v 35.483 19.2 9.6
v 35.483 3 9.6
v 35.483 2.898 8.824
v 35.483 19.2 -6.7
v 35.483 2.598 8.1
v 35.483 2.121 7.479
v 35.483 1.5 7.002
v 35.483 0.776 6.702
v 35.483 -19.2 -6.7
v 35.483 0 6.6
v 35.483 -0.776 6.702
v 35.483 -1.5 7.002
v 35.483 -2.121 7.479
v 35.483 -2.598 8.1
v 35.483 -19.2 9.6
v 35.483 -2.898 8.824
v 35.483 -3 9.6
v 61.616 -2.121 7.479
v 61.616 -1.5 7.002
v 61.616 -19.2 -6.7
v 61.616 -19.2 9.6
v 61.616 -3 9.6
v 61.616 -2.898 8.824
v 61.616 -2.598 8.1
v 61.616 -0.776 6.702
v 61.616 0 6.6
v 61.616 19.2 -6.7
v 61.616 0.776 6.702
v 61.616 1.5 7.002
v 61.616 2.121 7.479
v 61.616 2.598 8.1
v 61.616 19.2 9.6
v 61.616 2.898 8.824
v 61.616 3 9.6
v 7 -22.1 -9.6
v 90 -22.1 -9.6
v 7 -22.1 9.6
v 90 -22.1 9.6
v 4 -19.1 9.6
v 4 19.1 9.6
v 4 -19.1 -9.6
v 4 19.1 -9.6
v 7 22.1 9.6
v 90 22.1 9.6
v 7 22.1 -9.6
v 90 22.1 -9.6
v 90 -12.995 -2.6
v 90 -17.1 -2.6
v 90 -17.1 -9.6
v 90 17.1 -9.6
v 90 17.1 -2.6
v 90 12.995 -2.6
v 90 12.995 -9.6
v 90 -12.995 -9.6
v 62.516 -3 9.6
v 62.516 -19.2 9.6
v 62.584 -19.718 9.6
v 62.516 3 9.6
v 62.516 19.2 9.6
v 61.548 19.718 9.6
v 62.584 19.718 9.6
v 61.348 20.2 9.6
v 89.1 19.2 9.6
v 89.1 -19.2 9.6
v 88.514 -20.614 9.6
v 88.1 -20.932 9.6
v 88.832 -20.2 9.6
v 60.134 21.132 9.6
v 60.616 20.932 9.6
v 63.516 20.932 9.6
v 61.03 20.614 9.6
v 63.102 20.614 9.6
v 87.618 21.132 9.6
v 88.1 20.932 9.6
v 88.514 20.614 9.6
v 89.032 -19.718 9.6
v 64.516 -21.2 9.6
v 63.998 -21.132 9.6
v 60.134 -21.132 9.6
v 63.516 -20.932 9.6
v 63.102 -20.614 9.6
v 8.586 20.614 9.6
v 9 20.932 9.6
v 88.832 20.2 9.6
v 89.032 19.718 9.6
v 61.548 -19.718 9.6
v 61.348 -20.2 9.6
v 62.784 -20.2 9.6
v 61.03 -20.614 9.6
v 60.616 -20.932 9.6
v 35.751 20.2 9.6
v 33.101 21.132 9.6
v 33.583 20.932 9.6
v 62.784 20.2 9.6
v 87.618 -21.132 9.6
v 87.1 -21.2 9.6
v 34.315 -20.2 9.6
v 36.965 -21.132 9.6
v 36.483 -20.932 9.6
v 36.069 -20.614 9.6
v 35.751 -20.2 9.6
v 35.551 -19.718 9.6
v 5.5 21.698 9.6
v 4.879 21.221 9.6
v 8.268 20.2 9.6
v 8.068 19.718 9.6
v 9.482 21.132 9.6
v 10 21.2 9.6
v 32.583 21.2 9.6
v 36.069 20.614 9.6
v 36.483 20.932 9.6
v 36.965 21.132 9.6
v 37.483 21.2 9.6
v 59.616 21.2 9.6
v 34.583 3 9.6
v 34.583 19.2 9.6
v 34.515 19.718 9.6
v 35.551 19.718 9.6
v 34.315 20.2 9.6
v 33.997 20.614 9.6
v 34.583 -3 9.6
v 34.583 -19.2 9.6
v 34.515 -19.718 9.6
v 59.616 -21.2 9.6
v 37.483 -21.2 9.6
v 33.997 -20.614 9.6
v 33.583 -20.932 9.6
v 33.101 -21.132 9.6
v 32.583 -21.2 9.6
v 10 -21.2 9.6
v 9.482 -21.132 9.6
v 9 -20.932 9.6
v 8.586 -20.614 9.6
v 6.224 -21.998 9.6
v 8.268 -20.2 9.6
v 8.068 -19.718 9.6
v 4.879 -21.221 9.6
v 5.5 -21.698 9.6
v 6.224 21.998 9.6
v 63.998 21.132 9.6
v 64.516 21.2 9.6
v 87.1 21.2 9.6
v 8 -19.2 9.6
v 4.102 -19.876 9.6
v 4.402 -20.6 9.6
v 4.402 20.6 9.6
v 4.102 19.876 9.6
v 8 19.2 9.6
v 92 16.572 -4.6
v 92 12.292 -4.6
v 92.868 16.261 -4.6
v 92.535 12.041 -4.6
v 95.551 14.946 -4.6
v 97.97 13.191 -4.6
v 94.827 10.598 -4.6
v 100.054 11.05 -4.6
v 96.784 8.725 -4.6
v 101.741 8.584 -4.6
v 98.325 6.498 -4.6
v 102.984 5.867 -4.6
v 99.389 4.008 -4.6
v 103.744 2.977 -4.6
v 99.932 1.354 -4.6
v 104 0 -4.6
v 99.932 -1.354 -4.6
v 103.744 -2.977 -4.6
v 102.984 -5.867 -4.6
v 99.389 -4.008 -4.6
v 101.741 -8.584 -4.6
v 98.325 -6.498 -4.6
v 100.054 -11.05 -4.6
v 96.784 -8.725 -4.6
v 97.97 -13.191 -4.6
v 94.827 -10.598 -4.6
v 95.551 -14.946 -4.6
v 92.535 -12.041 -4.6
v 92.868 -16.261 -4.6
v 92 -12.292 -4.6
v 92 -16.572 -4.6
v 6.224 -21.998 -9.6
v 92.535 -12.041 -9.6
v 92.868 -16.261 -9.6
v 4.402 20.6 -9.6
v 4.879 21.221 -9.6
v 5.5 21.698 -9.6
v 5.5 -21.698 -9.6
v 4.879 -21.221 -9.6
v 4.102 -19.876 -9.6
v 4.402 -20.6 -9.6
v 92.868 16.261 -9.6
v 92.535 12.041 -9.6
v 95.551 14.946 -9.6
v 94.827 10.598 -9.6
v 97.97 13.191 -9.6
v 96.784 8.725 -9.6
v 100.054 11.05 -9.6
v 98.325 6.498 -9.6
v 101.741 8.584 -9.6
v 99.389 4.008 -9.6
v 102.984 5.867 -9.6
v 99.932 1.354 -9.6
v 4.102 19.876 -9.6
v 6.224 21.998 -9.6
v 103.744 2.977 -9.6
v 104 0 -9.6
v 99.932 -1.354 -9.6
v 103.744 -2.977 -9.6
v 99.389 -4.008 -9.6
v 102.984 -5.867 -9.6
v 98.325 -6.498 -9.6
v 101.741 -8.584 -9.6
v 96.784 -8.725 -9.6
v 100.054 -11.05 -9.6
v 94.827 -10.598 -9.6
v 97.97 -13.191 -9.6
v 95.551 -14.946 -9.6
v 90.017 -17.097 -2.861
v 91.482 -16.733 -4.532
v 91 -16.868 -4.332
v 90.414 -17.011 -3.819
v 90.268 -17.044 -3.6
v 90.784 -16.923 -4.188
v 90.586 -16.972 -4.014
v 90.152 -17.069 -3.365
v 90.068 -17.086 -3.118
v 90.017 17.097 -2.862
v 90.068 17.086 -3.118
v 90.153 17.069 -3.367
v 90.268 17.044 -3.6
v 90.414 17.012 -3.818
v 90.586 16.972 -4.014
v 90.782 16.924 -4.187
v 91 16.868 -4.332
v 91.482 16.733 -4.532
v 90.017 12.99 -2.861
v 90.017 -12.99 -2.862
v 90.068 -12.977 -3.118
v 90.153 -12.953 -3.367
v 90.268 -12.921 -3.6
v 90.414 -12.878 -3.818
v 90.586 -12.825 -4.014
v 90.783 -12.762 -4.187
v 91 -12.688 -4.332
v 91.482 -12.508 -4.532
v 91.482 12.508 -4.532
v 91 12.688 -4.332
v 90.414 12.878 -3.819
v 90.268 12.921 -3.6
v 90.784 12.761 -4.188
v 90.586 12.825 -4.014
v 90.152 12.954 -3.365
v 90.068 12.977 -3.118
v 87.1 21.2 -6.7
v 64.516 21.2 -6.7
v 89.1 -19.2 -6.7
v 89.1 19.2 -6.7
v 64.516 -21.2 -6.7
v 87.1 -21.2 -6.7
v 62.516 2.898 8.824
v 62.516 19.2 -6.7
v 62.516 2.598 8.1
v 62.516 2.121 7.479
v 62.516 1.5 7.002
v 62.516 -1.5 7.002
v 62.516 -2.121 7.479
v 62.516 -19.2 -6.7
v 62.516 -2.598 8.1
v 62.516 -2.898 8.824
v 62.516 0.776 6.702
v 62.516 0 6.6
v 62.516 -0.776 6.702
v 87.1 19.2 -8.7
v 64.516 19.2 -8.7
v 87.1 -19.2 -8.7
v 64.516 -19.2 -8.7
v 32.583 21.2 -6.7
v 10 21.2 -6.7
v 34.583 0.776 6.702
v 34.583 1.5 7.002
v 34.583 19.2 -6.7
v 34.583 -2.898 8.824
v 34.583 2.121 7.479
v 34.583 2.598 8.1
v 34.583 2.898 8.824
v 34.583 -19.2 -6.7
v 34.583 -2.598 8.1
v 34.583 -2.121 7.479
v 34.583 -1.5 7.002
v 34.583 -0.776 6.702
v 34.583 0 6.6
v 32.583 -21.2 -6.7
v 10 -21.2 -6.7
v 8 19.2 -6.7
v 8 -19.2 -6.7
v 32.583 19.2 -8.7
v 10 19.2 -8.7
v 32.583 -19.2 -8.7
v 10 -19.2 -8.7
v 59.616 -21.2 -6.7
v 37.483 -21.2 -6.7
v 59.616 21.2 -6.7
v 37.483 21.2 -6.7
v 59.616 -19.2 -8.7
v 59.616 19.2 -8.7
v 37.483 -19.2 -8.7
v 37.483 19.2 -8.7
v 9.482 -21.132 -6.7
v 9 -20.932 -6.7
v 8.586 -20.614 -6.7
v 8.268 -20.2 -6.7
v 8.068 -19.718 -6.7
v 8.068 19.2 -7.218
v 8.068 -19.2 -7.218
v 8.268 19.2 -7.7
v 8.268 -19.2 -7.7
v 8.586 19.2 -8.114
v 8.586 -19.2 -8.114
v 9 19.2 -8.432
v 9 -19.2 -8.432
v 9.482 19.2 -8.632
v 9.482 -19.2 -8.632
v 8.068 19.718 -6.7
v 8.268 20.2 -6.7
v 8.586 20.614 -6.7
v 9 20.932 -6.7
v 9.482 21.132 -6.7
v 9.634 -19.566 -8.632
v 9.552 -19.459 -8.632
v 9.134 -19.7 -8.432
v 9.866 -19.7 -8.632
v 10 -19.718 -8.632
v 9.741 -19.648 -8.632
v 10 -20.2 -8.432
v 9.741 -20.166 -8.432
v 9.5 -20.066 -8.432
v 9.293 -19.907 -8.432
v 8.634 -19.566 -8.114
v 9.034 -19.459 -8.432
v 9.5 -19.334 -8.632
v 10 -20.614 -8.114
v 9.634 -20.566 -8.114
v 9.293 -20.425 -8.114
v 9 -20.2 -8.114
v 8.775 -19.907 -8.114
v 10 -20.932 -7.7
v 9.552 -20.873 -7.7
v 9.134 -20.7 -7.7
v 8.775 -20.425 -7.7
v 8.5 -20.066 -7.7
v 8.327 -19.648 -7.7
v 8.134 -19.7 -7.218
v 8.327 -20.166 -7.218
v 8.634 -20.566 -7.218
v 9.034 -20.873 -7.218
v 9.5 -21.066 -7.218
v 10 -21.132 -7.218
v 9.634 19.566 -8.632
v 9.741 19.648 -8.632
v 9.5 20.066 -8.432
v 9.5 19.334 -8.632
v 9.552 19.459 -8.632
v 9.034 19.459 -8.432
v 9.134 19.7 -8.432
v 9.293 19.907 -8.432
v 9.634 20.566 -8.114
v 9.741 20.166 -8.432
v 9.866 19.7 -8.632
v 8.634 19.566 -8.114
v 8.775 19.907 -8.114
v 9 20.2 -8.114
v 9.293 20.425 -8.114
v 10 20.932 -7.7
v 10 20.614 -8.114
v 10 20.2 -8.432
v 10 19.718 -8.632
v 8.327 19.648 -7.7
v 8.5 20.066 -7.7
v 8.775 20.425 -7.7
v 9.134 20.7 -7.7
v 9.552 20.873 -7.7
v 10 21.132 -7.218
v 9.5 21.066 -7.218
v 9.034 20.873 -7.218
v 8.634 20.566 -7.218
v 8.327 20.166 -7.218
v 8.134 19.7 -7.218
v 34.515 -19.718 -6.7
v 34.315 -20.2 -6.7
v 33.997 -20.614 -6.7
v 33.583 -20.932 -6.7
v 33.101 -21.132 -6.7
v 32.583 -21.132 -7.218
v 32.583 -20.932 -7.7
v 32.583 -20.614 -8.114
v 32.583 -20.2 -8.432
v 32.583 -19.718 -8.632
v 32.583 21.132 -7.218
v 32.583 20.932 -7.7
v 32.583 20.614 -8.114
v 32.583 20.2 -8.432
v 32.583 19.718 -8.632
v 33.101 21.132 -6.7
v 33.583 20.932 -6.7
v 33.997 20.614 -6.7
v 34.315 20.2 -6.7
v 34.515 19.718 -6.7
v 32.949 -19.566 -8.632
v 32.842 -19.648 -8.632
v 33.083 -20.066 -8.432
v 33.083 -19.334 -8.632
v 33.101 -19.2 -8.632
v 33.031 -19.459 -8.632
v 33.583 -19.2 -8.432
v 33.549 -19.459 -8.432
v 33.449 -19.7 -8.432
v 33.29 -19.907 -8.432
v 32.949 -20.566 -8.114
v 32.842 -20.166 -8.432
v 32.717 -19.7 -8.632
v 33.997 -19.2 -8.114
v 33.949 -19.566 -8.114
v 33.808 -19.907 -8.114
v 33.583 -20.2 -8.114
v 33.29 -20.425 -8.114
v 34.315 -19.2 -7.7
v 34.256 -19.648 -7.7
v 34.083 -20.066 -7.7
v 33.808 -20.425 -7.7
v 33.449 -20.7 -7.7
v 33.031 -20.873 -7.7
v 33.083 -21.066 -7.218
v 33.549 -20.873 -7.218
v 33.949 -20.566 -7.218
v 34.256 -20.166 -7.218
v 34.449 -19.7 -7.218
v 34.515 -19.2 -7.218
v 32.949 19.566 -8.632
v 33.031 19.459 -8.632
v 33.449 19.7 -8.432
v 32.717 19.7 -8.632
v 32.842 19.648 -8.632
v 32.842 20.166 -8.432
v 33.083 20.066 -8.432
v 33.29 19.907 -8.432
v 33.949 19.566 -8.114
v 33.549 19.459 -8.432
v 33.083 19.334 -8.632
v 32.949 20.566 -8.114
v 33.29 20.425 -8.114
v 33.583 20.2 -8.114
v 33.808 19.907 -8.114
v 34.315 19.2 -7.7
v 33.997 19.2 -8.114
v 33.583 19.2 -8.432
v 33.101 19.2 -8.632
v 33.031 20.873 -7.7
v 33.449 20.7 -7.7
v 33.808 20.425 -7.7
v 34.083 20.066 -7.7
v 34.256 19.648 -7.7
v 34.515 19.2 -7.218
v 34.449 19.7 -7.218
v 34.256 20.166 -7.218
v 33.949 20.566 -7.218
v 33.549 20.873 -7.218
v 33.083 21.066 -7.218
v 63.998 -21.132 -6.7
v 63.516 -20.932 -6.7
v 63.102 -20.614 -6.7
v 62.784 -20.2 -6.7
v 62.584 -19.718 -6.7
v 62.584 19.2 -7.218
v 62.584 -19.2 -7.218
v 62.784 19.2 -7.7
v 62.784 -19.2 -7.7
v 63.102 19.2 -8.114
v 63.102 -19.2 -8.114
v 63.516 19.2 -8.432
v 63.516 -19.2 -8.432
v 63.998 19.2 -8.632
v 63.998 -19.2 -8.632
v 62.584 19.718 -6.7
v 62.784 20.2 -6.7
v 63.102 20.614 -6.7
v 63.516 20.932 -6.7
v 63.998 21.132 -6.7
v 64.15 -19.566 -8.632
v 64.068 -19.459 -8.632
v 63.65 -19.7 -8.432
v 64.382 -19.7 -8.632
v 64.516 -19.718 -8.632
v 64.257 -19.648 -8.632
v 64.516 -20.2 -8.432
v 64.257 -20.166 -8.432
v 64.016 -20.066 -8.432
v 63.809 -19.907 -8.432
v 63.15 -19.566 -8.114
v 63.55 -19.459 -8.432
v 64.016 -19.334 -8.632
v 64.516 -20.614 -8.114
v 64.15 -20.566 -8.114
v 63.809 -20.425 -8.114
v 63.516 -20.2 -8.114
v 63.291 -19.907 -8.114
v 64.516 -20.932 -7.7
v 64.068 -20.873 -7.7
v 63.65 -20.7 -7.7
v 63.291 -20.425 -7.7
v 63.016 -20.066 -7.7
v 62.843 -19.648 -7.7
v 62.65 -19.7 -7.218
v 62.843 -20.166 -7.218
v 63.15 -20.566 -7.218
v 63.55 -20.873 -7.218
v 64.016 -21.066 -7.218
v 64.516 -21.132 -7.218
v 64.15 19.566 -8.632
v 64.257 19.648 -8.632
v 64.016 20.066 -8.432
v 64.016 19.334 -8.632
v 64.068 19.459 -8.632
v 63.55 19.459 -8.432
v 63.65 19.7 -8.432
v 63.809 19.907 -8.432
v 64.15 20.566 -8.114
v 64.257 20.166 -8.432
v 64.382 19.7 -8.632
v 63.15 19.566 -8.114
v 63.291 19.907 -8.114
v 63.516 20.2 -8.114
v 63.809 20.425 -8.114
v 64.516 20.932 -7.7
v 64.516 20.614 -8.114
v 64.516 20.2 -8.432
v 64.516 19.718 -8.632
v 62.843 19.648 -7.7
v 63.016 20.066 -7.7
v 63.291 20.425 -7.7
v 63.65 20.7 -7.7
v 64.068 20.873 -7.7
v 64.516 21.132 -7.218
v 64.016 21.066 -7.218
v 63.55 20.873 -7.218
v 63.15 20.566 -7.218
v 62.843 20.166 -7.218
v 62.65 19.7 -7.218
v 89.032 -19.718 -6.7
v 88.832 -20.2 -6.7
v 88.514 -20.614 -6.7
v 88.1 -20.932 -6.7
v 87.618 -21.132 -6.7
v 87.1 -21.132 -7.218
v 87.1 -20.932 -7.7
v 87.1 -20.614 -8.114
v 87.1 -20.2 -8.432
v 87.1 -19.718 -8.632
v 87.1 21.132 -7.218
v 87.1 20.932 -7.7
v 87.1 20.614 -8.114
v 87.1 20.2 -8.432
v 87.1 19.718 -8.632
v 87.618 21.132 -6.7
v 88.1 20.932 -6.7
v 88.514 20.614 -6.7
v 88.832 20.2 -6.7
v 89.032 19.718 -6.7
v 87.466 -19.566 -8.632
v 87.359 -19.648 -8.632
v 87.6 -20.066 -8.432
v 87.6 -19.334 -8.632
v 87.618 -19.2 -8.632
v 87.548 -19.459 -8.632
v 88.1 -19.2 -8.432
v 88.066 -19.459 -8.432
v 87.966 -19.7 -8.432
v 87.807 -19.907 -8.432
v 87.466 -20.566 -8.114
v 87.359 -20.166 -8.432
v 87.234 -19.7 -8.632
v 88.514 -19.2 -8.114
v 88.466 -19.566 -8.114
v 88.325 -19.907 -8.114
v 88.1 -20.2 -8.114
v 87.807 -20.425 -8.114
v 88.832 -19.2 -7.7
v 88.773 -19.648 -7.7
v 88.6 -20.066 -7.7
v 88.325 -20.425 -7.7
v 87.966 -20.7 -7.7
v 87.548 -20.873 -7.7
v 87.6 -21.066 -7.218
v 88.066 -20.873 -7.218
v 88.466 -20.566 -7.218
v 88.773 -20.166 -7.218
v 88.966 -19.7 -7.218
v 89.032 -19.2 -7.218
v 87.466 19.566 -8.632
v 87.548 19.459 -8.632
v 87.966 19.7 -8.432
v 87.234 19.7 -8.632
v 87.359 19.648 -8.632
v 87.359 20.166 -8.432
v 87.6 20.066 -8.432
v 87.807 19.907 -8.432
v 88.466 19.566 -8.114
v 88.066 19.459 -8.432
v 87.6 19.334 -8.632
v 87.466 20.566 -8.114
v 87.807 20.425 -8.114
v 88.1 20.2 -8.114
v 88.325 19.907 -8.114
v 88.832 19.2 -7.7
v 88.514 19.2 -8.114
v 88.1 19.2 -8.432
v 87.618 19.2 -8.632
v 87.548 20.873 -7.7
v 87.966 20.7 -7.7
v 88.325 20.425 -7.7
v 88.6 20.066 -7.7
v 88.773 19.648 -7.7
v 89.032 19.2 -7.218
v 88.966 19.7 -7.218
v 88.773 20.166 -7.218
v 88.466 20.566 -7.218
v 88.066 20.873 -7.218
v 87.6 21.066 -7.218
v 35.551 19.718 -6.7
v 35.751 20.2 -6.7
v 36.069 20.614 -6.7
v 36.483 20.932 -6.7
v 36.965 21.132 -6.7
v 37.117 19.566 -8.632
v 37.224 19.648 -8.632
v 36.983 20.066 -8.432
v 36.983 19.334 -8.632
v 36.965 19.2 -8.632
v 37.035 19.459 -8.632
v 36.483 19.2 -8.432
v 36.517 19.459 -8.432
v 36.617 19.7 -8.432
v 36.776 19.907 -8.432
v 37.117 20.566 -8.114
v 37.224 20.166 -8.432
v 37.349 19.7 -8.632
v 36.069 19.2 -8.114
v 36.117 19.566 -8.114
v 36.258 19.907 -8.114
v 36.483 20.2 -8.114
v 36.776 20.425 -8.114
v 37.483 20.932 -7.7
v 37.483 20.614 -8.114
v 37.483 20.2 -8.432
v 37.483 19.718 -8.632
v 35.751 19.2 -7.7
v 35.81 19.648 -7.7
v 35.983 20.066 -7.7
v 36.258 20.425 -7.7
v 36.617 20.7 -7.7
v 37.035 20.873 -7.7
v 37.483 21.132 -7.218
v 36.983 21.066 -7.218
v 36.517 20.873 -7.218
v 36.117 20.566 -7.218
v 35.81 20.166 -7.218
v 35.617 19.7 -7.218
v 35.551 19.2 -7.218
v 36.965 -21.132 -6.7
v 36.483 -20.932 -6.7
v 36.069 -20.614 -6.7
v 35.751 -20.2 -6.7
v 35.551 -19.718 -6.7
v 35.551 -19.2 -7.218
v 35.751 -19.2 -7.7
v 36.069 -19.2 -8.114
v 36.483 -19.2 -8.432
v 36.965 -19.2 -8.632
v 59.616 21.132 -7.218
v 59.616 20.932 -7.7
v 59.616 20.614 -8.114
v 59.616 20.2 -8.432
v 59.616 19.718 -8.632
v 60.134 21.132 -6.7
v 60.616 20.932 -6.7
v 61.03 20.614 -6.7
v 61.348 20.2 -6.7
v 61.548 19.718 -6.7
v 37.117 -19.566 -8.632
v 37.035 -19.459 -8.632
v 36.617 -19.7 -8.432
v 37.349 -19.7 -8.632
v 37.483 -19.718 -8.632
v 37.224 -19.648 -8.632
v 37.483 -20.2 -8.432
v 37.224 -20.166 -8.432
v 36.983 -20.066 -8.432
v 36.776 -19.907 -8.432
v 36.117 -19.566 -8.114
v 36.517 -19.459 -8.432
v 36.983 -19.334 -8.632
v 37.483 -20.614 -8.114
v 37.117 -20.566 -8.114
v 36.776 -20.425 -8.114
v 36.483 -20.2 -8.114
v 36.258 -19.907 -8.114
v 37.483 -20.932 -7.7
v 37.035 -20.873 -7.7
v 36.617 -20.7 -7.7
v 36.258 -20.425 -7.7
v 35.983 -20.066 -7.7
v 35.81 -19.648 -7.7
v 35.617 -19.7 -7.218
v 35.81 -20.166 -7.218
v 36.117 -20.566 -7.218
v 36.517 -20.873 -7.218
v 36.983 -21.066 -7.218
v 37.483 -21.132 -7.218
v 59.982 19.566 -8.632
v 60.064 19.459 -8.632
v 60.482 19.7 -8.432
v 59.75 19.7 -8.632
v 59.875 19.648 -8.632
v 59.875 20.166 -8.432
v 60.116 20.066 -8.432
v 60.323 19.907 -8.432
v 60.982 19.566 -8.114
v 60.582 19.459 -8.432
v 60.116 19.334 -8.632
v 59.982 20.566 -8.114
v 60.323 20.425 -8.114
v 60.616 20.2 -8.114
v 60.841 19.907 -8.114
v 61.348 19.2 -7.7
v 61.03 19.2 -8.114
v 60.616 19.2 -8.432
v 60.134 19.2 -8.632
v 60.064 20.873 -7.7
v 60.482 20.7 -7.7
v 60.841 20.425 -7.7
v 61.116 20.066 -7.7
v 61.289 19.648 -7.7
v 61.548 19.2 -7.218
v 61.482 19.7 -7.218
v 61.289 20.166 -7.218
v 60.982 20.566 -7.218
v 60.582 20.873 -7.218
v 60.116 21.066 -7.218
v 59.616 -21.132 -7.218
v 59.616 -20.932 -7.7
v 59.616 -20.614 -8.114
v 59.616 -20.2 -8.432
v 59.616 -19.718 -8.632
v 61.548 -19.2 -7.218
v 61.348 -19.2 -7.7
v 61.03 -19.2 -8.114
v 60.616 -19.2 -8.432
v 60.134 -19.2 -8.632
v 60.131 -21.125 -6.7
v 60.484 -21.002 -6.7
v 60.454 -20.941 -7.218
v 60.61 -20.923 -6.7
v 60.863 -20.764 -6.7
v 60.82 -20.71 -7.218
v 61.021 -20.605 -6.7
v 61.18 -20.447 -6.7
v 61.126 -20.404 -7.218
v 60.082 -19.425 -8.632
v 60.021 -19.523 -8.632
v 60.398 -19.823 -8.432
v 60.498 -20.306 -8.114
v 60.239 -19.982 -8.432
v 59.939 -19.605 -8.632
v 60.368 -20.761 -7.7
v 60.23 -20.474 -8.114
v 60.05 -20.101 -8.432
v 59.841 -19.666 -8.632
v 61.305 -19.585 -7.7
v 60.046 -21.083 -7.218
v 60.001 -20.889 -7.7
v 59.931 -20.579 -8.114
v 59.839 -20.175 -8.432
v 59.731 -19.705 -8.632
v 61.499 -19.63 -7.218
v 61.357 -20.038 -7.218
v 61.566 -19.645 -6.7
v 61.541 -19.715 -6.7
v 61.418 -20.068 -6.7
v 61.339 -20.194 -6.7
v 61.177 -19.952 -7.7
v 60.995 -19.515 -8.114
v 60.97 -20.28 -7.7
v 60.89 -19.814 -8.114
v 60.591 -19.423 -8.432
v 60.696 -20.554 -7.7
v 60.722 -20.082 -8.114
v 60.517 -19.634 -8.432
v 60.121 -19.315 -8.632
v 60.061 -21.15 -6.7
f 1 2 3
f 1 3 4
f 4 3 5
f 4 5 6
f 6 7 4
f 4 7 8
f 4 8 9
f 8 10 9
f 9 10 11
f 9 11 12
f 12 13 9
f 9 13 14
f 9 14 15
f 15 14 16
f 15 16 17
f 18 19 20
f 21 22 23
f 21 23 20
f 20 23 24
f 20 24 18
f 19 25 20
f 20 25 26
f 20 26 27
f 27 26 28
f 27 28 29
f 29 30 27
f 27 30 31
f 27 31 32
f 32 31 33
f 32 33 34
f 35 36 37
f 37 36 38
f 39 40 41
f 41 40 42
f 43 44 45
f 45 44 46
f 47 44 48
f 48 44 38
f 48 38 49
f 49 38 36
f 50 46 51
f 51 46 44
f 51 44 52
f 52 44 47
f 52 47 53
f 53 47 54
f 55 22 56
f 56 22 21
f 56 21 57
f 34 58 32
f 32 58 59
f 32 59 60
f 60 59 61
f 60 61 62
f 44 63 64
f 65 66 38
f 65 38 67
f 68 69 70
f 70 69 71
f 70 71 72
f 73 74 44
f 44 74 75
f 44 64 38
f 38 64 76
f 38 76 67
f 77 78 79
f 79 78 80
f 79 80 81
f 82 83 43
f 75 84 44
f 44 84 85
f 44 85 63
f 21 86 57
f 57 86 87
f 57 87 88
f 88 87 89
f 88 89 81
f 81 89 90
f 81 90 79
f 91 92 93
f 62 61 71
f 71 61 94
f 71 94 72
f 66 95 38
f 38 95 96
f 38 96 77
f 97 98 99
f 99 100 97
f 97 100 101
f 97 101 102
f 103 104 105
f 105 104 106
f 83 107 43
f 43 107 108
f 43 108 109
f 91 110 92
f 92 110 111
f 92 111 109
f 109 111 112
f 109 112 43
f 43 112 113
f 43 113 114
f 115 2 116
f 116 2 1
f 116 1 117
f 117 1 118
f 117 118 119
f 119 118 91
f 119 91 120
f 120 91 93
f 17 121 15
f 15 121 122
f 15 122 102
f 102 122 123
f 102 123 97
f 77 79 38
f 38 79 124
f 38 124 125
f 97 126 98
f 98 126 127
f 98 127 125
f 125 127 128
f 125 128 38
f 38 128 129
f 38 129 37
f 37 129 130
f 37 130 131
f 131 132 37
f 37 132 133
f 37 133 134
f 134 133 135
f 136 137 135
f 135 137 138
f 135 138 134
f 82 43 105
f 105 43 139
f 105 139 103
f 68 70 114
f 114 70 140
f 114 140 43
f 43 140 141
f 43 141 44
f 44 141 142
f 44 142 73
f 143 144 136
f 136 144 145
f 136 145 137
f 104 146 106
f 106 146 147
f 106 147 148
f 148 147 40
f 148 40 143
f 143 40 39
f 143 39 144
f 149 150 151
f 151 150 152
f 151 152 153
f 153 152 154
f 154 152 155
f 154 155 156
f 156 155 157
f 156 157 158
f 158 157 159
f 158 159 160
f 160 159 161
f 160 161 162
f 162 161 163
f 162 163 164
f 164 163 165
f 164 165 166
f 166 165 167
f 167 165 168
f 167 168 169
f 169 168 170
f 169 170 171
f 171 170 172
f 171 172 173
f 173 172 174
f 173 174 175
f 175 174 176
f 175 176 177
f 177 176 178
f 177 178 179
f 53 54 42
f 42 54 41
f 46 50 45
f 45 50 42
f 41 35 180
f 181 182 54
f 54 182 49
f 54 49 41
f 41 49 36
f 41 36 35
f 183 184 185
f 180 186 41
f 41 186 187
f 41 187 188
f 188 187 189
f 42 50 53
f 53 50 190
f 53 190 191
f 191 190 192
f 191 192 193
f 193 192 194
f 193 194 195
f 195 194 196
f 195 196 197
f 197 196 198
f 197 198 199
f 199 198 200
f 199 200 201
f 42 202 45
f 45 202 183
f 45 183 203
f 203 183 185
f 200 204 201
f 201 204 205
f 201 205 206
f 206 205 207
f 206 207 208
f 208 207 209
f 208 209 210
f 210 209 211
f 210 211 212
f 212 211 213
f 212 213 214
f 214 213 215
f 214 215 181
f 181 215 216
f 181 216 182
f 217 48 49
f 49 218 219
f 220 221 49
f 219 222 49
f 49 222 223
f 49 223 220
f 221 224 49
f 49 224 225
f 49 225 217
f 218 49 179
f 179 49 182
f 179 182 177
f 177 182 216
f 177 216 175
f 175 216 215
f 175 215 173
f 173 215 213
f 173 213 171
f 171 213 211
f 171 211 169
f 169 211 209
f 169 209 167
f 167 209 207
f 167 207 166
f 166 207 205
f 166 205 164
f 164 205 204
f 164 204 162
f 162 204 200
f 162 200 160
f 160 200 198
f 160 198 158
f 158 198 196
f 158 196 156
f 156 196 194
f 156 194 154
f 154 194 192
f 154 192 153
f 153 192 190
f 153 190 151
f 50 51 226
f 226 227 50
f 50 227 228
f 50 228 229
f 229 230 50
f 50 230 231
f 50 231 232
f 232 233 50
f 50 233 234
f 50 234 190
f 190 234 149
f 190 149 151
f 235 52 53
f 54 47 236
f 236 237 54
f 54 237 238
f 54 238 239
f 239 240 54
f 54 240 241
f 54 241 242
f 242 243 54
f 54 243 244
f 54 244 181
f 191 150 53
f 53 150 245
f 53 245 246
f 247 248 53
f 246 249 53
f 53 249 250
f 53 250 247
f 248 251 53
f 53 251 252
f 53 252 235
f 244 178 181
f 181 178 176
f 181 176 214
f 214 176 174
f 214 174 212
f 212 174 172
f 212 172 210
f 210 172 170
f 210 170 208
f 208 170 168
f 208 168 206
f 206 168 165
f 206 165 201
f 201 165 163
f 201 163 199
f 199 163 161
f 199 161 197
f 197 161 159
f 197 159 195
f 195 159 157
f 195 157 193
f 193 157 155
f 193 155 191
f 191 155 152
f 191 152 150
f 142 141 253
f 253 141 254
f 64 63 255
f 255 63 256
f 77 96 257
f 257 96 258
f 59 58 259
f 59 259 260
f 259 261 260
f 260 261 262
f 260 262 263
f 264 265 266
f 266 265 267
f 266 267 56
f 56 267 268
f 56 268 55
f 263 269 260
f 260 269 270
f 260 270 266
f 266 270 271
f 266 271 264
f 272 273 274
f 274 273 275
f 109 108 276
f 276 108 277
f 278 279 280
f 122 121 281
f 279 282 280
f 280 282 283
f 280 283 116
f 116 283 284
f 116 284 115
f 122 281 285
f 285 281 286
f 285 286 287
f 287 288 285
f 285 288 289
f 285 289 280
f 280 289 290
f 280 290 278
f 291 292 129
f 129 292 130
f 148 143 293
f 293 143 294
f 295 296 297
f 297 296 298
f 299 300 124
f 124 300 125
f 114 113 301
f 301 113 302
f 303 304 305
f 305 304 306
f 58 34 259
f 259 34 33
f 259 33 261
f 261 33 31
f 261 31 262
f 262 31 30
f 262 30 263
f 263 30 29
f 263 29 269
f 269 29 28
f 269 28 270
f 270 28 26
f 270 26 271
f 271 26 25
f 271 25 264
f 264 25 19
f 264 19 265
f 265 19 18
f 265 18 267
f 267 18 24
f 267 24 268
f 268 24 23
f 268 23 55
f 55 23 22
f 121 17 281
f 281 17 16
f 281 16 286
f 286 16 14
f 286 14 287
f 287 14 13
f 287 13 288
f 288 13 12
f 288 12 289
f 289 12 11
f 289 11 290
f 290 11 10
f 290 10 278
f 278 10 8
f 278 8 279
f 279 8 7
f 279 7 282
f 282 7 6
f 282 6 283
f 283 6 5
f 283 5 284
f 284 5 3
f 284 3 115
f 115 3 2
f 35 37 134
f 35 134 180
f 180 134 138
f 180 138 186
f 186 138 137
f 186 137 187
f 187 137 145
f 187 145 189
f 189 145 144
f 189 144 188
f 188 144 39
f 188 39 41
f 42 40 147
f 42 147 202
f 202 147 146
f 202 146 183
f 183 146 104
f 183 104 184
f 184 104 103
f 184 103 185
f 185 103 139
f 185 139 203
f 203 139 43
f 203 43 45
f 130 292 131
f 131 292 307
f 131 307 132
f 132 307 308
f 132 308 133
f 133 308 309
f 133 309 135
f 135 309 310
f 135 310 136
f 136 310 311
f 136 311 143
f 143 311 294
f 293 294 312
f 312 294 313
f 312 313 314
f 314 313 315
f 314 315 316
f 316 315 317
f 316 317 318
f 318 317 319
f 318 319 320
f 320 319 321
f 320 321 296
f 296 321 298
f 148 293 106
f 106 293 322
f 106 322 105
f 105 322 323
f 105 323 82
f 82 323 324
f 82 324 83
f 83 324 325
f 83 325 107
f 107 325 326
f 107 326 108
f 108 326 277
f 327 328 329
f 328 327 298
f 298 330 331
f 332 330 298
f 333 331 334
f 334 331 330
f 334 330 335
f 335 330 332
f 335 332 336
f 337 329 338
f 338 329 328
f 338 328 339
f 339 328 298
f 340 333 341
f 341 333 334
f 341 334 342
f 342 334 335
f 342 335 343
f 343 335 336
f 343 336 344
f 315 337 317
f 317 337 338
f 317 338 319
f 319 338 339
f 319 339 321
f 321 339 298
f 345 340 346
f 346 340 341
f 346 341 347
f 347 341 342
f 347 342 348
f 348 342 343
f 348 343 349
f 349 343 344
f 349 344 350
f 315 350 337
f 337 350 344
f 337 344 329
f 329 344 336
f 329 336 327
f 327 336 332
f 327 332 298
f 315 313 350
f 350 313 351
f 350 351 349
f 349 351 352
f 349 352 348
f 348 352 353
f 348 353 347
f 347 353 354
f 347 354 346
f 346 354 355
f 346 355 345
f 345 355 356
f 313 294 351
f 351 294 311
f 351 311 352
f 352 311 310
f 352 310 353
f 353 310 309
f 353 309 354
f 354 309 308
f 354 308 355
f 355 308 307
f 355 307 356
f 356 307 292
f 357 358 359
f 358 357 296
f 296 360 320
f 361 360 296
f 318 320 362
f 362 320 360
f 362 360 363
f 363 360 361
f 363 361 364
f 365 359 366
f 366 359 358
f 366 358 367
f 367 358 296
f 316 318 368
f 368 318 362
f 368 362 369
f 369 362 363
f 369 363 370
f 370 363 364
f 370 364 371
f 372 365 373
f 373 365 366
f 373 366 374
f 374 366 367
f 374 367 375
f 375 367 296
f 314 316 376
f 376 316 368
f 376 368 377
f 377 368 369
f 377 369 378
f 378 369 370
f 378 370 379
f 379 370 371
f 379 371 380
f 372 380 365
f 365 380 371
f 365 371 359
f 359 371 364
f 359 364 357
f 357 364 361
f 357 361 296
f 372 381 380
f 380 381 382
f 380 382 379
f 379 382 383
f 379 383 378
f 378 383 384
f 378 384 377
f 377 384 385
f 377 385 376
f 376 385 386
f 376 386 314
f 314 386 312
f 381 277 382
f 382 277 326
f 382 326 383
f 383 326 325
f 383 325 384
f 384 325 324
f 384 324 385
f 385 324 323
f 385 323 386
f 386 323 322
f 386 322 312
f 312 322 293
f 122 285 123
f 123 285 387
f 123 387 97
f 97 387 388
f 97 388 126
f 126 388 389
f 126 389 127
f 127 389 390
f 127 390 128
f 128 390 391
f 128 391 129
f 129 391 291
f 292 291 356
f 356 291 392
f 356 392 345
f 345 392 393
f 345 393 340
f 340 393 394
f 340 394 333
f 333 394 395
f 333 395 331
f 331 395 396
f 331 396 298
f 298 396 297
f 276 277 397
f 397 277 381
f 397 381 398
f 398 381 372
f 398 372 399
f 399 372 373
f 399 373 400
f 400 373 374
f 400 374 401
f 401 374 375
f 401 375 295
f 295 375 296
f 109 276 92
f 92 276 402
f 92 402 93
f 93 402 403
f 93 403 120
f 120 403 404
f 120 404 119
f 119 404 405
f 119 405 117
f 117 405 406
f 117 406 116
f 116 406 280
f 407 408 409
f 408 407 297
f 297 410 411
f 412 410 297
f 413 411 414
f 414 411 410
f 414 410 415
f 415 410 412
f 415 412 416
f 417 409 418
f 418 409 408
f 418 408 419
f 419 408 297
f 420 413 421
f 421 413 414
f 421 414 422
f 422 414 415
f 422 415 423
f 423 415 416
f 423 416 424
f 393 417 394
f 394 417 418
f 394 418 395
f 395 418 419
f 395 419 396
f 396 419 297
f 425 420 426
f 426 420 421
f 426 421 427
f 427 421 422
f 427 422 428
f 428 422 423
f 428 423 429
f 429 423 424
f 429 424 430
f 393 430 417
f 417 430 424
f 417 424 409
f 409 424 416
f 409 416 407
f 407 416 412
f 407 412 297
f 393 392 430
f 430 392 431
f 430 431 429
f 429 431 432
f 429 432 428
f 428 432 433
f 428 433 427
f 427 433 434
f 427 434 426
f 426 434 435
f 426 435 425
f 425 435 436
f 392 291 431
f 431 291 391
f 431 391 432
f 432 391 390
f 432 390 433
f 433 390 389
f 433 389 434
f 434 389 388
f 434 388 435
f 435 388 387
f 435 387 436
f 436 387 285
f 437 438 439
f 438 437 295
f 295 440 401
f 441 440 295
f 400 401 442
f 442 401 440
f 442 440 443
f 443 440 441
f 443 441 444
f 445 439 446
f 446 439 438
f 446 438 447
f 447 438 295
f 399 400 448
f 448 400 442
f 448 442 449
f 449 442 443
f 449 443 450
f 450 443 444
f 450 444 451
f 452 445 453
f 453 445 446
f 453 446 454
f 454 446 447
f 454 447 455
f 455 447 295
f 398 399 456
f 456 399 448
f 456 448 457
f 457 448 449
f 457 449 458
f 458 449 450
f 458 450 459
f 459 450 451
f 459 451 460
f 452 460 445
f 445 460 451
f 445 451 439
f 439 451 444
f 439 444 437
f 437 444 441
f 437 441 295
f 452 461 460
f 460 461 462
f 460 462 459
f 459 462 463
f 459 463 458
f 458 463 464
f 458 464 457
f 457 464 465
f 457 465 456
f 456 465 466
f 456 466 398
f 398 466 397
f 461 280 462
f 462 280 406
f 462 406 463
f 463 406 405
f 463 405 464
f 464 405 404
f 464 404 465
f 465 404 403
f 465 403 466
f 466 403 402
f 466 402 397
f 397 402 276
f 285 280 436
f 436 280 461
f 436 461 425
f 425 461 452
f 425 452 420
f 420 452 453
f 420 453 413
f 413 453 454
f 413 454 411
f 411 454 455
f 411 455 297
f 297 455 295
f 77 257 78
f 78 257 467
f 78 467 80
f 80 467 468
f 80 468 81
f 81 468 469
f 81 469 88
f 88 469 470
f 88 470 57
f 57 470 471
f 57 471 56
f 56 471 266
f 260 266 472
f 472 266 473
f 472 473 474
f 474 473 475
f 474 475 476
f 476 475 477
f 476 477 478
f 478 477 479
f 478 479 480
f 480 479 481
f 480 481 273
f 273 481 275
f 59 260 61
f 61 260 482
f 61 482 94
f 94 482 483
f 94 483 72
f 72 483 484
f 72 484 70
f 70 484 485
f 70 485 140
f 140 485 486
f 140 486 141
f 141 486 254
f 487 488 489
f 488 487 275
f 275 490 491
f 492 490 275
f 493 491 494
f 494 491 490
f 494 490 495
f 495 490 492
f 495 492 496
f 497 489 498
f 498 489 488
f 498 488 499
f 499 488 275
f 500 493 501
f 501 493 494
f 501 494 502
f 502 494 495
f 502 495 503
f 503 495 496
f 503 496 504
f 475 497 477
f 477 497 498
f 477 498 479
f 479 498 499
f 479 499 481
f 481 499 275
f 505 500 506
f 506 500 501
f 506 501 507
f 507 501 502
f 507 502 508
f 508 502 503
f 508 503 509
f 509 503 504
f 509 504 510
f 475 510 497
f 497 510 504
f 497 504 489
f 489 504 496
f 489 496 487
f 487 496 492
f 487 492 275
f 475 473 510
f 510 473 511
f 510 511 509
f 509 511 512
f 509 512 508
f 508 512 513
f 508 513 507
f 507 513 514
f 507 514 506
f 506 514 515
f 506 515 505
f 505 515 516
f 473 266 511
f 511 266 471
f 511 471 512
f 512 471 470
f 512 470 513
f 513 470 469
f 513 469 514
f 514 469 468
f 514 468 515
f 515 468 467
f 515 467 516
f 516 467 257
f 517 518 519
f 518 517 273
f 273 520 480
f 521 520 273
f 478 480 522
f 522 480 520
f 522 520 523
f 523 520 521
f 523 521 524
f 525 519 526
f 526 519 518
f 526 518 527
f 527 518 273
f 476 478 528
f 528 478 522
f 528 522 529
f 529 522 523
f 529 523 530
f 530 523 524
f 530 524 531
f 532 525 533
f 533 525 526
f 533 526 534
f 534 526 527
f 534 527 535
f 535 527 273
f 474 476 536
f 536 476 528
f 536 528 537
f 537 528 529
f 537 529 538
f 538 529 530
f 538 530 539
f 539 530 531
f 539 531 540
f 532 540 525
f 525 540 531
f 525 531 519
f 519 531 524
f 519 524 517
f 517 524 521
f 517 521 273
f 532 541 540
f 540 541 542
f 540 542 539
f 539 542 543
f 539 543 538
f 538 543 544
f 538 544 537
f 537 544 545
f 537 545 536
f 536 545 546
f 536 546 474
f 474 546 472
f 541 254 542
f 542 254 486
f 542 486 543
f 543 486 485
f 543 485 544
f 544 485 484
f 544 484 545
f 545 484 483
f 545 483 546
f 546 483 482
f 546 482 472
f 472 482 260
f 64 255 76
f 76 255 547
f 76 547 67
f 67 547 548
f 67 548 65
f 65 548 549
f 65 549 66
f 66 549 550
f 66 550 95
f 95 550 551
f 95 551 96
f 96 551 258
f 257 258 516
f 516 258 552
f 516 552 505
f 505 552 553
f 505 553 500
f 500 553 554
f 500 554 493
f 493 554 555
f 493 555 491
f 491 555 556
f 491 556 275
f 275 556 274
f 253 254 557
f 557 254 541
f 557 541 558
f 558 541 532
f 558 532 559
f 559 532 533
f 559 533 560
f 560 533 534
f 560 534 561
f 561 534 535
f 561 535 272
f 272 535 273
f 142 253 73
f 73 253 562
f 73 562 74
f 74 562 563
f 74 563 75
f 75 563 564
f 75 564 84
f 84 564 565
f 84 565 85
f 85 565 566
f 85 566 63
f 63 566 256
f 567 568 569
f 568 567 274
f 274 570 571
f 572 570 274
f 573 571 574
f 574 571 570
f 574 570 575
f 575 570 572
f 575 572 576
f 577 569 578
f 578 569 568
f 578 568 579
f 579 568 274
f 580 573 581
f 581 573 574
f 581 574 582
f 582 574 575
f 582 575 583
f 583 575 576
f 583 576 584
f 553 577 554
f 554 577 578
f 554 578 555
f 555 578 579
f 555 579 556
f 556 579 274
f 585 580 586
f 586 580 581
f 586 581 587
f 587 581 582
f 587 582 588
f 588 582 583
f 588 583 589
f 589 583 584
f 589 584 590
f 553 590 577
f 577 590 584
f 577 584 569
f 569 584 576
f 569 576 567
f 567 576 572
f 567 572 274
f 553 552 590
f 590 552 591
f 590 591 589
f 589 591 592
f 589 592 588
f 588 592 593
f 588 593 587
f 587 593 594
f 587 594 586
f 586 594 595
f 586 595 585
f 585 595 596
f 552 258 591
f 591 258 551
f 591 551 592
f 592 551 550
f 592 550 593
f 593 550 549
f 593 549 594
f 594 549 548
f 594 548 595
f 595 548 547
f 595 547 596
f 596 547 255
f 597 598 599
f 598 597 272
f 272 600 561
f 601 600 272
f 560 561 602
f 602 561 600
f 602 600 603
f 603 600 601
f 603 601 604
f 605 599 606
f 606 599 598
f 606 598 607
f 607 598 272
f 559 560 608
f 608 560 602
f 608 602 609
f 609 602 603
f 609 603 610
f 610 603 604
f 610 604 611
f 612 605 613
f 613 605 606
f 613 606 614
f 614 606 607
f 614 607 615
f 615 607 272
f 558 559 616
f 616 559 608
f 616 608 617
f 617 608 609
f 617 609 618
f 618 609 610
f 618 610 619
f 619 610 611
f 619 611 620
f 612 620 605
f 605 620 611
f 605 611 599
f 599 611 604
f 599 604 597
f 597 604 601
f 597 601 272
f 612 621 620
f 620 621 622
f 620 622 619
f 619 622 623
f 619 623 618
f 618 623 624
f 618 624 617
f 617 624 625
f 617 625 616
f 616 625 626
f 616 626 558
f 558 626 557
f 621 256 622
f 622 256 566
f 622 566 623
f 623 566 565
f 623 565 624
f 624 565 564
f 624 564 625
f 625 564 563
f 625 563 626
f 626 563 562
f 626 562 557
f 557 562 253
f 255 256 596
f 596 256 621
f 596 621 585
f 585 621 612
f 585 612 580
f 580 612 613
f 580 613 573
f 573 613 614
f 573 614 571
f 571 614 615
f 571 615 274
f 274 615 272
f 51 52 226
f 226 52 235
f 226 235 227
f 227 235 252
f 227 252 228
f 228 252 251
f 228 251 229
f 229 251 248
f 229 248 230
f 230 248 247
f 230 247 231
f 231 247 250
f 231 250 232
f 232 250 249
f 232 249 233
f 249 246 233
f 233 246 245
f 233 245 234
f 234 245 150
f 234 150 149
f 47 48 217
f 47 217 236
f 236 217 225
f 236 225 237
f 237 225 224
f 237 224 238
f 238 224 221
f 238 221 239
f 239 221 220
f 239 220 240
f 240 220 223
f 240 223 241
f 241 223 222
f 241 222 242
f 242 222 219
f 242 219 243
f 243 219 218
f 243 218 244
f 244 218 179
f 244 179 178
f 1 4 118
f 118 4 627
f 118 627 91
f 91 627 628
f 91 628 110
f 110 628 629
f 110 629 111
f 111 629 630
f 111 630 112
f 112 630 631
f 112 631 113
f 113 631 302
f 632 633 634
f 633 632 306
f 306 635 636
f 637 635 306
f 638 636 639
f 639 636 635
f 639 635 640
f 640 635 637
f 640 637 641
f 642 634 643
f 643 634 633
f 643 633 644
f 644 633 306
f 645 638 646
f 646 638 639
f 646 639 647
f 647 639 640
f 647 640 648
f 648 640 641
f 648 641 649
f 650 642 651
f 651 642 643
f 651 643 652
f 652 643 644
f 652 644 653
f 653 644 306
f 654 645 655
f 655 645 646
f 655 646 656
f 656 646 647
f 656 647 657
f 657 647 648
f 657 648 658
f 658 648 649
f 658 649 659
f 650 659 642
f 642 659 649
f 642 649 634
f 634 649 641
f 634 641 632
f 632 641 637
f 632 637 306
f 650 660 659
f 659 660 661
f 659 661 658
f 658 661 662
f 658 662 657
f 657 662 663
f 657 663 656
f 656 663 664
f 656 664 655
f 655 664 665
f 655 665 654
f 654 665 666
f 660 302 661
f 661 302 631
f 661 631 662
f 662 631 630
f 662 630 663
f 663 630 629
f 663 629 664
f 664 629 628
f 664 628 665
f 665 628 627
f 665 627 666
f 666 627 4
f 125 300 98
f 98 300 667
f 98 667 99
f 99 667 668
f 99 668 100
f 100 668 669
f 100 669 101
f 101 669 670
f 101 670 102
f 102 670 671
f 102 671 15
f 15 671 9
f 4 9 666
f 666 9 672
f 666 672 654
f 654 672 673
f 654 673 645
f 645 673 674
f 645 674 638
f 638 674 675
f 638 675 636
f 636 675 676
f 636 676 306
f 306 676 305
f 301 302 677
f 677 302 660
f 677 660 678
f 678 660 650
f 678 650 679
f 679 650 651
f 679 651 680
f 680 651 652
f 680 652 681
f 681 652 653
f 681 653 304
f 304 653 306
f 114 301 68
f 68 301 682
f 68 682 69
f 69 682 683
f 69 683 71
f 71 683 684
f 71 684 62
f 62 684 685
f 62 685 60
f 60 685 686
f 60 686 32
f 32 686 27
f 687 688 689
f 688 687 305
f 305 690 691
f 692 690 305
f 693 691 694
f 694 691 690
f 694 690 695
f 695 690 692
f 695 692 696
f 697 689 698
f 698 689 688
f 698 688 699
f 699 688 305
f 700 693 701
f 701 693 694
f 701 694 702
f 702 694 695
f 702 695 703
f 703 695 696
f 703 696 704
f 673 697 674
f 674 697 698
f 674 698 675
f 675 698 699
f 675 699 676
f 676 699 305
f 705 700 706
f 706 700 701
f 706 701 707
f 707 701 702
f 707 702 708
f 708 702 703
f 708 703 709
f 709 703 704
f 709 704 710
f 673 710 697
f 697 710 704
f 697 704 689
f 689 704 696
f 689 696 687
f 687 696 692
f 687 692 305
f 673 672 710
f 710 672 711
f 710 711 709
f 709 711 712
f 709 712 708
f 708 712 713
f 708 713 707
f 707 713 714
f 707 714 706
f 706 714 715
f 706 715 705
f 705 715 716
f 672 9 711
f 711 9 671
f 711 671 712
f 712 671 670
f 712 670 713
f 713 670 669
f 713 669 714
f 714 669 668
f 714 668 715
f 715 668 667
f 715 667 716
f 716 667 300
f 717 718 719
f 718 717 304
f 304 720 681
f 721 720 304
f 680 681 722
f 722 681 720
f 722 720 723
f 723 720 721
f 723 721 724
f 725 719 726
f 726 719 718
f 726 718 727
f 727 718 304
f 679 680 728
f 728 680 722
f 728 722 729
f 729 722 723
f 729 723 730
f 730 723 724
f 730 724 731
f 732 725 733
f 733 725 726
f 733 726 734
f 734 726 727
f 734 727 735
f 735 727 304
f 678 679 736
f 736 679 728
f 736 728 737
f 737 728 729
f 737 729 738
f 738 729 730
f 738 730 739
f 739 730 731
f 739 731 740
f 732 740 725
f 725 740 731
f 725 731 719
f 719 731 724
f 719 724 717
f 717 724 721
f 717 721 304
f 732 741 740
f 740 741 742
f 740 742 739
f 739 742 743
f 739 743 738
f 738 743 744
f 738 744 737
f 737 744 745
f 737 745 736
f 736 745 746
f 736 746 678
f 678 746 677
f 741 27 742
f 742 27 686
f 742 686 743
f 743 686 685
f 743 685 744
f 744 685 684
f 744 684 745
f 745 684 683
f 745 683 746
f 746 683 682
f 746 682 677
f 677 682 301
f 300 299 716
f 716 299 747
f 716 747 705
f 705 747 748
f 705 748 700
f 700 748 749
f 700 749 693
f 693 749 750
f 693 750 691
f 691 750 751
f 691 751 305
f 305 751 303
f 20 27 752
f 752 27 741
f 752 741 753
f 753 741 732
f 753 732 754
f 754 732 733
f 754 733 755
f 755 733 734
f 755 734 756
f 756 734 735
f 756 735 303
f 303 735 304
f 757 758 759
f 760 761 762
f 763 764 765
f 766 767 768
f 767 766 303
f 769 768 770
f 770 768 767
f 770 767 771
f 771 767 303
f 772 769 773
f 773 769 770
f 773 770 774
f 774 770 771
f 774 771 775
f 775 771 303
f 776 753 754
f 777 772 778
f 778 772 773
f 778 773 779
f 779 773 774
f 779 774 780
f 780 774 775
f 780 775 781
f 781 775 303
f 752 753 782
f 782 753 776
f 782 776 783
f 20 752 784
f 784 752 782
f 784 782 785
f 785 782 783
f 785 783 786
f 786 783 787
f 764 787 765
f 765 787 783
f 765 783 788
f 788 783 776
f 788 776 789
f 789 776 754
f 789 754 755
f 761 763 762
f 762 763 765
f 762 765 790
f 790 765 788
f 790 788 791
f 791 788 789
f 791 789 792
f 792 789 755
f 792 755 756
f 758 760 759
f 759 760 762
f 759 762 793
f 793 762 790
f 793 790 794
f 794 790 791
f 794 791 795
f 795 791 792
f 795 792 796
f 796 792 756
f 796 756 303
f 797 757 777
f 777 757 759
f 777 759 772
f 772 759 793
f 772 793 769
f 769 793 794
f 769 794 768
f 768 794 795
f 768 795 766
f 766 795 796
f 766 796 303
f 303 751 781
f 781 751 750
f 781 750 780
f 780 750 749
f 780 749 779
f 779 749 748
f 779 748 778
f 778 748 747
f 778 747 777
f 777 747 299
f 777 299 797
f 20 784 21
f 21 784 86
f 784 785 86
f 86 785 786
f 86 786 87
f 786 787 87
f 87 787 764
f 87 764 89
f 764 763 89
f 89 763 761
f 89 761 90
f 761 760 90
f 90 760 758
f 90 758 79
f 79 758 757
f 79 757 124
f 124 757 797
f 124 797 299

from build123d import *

# Parameters (mm, degrees)
SKETCH_1_W                  = 86
SKETCH_1_H                  = 44.2
EXTRUDE_1_DEPTH             = 14.2
EXTRUDE_2_DEPTH             = 5
SKETCH_3_W                  = 26.584
SKETCH_3_H                  = 42.4
CUT_EXTRUDE_1_DEPTH         = 18.3
SKETCH_4_W                  = 26.583
SKETCH_4_H                  = 42.4
CUT_EXTRUDE_2_DEPTH         = 18.3
SKETCH_5_W                  = 26.133
SKETCH_5_H                  = 42.4
CUT_EXTRUDE_3_DEPTH         = 18.3
HOLE_WIZARD_8_3_8_3_1_D     = 8.3
HOLE_WIZARD_8_3_8_3_1_DEPTH = 3.2
HOLE_WIZARD_6_0_6_1_D       = 6
HOLE_WIZARD_6_0_6_1_DEPTH   = 0.9
HOLE_WIZARD_6_0_6_2_D       = 6
HOLE_WIZARD_6_0_6_2_DEPTH   = 0.9
FILLET_1_R                  = 3
EXTRUDE_START               = -3.5
SKETCH_12_R                 = 4.15
EXTRUDE_3_DEPTH             = 3.5
FILLET_2_R                  = 2


with BuildPart() as part:
    # Эскиз1 → Бобышка-Вытянуть1 (new body)
    with BuildSketch(Plane.XY.offset(9.6)):
        with Locations((47, 0)):
            Rectangle(SKETCH_1_W, SKETCH_1_H)
    extrude(amount=-EXTRUDE_1_DEPTH)

    # Эскиз2 → Бобышка-Вытянуть2 (add)
    with BuildSketch(Plane(origin=(0, 0, -4.6), x_dir=(-1, 0, 0), z_dir=(0, 0, -1))):
        with BuildLine():
            Line((-90, -22.1), (-90, -17.1))
            ThreePointArc((-90, -17.1), (-104, 0), (-90, 17.1))
            Line((-90, 17.1), (-90, 22.1))
            Line((-90, 22.1), (-4, 22.1))
            Line((-4, 22.1), (-4, -22.1))
            Line((-4, -22.1), (-90, -22.1))
        make_face()
        with BuildLine():
            Line((-90, -12.994779171), (-90, 12.994779171))
            ThreePointArc((-90, 12.994779171), (-100, 0), (-90, -12.994779171))
        make_face(mode=Mode.SUBTRACT)
    extrude(amount=EXTRUDE_2_DEPTH)

    # Эскиз3 → Вырез-Вытянуть1 (cut)
    with BuildSketch(Plane.XY.offset(9.6)):
        with Locations((75.808, 0)):
            Rectangle(SKETCH_3_W, SKETCH_3_H)
    extrude(amount=-CUT_EXTRUDE_1_DEPTH, mode=Mode.SUBTRACT)

    # Эскиз4 → Вырез-Вытянуть2 (cut)
    with BuildSketch(Plane.XY.offset(9.6)):
        with Locations((21.2915, 0)):
            Rectangle(SKETCH_4_W, SKETCH_4_H)
    extrude(amount=-CUT_EXTRUDE_2_DEPTH, mode=Mode.SUBTRACT)

    # Эскиз5 → Вырез-Вытянуть3 (cut)
    with BuildSketch(Plane.XY.offset(9.6)):
        with Locations((48.5495, 0)):
            Rectangle(SKETCH_5_W, SKETCH_5_H)
    extrude(amount=-CUT_EXTRUDE_3_DEPTH, mode=Mode.SUBTRACT)

    # Диаметр отверстия Ø8.3 (8.3)1
    with Locations(Plane.ZY.offset(-4)):
        with Locations((0, 0)):
            Hole(HOLE_WIZARD_8_3_8_3_1_D / 2, depth=HOLE_WIZARD_8_3_8_3_1_DEPTH)

    # Диаметр отверстия Ø6.0 (6)1
    with Locations(Plane.ZY.offset(-61.616)):
        with Locations((9.6, 0)):
            Hole(HOLE_WIZARD_6_0_6_1_D / 2, depth=HOLE_WIZARD_6_0_6_1_DEPTH)

    # Диаметр отверстия Ø6.0 (6)2
    with Locations(Plane(origin=(35.483, 0, 0), x_dir=(0, 0, -1), z_dir=(1, 0, 0))):
        with Locations((-9.6, 0)):
            Hole(HOLE_WIZARD_6_0_6_2_D / 2, depth=HOLE_WIZARD_6_0_6_2_DEPTH)

    # Скругление1
    fillet_1_edges = [part.edges().sort_by_distance(p)[0] for p in [
        (4, -22.1, 0),
        (4, 22.1, 0),
    ]]
    fillet(fillet_1_edges, radius=FILLET_1_R)

    # Эскиз12 → Бобышка-Вытянуть3 (add)
    with BuildSketch(Plane.ZY.offset(-4).offset(EXTRUDE_START)):
        Circle(SKETCH_12_R)
    extrude(amount=EXTRUDE_3_DEPTH)

    # Скругление2
    fillet_2_edges = [part.edges().sort_by_distance(p)[0] for p in [
        (90, -15.047389586, -4.6),
        (90, 15.047389586, -4.6),
        (75.808, 21.2, -8.7),
        (62.516, 21.2, 0.45),
        (89.1, 0, -8.7),
        (89.1, 21.2, 0.45),
        (75.808, -21.2, -8.7),
        (89.1, -21.2, 0.45),
        (62.516, 0, -8.7),
        (62.516, -21.2, 0.45),
        (21.2915, 21.2, -8.7),
        (8, 21.2, 0.45),
        (34.583, 0, -8.7),
        (34.583, 21.2, 0.45),
        (21.2915, -21.2, -8.7),
        (34.583, -21.2, 0.45),
        (8, 0, -8.7),
        (8, -21.2, 0.45),
        (48.5495, -21.2, -8.7),
        (61.616, -21.2, 0.45),
        (35.483, 0, -8.7),
        (35.483, -21.2, 0.45),
        (48.5495, 21.2, -8.7),
        (35.483, 21.2, 0.45),
        (61.616, 0, -8.7),
        (61.616, 21.2, 0.45),
    ]]
    fillet(fillet_2_edges, radius=FILLET_2_R)


solid = part.part
